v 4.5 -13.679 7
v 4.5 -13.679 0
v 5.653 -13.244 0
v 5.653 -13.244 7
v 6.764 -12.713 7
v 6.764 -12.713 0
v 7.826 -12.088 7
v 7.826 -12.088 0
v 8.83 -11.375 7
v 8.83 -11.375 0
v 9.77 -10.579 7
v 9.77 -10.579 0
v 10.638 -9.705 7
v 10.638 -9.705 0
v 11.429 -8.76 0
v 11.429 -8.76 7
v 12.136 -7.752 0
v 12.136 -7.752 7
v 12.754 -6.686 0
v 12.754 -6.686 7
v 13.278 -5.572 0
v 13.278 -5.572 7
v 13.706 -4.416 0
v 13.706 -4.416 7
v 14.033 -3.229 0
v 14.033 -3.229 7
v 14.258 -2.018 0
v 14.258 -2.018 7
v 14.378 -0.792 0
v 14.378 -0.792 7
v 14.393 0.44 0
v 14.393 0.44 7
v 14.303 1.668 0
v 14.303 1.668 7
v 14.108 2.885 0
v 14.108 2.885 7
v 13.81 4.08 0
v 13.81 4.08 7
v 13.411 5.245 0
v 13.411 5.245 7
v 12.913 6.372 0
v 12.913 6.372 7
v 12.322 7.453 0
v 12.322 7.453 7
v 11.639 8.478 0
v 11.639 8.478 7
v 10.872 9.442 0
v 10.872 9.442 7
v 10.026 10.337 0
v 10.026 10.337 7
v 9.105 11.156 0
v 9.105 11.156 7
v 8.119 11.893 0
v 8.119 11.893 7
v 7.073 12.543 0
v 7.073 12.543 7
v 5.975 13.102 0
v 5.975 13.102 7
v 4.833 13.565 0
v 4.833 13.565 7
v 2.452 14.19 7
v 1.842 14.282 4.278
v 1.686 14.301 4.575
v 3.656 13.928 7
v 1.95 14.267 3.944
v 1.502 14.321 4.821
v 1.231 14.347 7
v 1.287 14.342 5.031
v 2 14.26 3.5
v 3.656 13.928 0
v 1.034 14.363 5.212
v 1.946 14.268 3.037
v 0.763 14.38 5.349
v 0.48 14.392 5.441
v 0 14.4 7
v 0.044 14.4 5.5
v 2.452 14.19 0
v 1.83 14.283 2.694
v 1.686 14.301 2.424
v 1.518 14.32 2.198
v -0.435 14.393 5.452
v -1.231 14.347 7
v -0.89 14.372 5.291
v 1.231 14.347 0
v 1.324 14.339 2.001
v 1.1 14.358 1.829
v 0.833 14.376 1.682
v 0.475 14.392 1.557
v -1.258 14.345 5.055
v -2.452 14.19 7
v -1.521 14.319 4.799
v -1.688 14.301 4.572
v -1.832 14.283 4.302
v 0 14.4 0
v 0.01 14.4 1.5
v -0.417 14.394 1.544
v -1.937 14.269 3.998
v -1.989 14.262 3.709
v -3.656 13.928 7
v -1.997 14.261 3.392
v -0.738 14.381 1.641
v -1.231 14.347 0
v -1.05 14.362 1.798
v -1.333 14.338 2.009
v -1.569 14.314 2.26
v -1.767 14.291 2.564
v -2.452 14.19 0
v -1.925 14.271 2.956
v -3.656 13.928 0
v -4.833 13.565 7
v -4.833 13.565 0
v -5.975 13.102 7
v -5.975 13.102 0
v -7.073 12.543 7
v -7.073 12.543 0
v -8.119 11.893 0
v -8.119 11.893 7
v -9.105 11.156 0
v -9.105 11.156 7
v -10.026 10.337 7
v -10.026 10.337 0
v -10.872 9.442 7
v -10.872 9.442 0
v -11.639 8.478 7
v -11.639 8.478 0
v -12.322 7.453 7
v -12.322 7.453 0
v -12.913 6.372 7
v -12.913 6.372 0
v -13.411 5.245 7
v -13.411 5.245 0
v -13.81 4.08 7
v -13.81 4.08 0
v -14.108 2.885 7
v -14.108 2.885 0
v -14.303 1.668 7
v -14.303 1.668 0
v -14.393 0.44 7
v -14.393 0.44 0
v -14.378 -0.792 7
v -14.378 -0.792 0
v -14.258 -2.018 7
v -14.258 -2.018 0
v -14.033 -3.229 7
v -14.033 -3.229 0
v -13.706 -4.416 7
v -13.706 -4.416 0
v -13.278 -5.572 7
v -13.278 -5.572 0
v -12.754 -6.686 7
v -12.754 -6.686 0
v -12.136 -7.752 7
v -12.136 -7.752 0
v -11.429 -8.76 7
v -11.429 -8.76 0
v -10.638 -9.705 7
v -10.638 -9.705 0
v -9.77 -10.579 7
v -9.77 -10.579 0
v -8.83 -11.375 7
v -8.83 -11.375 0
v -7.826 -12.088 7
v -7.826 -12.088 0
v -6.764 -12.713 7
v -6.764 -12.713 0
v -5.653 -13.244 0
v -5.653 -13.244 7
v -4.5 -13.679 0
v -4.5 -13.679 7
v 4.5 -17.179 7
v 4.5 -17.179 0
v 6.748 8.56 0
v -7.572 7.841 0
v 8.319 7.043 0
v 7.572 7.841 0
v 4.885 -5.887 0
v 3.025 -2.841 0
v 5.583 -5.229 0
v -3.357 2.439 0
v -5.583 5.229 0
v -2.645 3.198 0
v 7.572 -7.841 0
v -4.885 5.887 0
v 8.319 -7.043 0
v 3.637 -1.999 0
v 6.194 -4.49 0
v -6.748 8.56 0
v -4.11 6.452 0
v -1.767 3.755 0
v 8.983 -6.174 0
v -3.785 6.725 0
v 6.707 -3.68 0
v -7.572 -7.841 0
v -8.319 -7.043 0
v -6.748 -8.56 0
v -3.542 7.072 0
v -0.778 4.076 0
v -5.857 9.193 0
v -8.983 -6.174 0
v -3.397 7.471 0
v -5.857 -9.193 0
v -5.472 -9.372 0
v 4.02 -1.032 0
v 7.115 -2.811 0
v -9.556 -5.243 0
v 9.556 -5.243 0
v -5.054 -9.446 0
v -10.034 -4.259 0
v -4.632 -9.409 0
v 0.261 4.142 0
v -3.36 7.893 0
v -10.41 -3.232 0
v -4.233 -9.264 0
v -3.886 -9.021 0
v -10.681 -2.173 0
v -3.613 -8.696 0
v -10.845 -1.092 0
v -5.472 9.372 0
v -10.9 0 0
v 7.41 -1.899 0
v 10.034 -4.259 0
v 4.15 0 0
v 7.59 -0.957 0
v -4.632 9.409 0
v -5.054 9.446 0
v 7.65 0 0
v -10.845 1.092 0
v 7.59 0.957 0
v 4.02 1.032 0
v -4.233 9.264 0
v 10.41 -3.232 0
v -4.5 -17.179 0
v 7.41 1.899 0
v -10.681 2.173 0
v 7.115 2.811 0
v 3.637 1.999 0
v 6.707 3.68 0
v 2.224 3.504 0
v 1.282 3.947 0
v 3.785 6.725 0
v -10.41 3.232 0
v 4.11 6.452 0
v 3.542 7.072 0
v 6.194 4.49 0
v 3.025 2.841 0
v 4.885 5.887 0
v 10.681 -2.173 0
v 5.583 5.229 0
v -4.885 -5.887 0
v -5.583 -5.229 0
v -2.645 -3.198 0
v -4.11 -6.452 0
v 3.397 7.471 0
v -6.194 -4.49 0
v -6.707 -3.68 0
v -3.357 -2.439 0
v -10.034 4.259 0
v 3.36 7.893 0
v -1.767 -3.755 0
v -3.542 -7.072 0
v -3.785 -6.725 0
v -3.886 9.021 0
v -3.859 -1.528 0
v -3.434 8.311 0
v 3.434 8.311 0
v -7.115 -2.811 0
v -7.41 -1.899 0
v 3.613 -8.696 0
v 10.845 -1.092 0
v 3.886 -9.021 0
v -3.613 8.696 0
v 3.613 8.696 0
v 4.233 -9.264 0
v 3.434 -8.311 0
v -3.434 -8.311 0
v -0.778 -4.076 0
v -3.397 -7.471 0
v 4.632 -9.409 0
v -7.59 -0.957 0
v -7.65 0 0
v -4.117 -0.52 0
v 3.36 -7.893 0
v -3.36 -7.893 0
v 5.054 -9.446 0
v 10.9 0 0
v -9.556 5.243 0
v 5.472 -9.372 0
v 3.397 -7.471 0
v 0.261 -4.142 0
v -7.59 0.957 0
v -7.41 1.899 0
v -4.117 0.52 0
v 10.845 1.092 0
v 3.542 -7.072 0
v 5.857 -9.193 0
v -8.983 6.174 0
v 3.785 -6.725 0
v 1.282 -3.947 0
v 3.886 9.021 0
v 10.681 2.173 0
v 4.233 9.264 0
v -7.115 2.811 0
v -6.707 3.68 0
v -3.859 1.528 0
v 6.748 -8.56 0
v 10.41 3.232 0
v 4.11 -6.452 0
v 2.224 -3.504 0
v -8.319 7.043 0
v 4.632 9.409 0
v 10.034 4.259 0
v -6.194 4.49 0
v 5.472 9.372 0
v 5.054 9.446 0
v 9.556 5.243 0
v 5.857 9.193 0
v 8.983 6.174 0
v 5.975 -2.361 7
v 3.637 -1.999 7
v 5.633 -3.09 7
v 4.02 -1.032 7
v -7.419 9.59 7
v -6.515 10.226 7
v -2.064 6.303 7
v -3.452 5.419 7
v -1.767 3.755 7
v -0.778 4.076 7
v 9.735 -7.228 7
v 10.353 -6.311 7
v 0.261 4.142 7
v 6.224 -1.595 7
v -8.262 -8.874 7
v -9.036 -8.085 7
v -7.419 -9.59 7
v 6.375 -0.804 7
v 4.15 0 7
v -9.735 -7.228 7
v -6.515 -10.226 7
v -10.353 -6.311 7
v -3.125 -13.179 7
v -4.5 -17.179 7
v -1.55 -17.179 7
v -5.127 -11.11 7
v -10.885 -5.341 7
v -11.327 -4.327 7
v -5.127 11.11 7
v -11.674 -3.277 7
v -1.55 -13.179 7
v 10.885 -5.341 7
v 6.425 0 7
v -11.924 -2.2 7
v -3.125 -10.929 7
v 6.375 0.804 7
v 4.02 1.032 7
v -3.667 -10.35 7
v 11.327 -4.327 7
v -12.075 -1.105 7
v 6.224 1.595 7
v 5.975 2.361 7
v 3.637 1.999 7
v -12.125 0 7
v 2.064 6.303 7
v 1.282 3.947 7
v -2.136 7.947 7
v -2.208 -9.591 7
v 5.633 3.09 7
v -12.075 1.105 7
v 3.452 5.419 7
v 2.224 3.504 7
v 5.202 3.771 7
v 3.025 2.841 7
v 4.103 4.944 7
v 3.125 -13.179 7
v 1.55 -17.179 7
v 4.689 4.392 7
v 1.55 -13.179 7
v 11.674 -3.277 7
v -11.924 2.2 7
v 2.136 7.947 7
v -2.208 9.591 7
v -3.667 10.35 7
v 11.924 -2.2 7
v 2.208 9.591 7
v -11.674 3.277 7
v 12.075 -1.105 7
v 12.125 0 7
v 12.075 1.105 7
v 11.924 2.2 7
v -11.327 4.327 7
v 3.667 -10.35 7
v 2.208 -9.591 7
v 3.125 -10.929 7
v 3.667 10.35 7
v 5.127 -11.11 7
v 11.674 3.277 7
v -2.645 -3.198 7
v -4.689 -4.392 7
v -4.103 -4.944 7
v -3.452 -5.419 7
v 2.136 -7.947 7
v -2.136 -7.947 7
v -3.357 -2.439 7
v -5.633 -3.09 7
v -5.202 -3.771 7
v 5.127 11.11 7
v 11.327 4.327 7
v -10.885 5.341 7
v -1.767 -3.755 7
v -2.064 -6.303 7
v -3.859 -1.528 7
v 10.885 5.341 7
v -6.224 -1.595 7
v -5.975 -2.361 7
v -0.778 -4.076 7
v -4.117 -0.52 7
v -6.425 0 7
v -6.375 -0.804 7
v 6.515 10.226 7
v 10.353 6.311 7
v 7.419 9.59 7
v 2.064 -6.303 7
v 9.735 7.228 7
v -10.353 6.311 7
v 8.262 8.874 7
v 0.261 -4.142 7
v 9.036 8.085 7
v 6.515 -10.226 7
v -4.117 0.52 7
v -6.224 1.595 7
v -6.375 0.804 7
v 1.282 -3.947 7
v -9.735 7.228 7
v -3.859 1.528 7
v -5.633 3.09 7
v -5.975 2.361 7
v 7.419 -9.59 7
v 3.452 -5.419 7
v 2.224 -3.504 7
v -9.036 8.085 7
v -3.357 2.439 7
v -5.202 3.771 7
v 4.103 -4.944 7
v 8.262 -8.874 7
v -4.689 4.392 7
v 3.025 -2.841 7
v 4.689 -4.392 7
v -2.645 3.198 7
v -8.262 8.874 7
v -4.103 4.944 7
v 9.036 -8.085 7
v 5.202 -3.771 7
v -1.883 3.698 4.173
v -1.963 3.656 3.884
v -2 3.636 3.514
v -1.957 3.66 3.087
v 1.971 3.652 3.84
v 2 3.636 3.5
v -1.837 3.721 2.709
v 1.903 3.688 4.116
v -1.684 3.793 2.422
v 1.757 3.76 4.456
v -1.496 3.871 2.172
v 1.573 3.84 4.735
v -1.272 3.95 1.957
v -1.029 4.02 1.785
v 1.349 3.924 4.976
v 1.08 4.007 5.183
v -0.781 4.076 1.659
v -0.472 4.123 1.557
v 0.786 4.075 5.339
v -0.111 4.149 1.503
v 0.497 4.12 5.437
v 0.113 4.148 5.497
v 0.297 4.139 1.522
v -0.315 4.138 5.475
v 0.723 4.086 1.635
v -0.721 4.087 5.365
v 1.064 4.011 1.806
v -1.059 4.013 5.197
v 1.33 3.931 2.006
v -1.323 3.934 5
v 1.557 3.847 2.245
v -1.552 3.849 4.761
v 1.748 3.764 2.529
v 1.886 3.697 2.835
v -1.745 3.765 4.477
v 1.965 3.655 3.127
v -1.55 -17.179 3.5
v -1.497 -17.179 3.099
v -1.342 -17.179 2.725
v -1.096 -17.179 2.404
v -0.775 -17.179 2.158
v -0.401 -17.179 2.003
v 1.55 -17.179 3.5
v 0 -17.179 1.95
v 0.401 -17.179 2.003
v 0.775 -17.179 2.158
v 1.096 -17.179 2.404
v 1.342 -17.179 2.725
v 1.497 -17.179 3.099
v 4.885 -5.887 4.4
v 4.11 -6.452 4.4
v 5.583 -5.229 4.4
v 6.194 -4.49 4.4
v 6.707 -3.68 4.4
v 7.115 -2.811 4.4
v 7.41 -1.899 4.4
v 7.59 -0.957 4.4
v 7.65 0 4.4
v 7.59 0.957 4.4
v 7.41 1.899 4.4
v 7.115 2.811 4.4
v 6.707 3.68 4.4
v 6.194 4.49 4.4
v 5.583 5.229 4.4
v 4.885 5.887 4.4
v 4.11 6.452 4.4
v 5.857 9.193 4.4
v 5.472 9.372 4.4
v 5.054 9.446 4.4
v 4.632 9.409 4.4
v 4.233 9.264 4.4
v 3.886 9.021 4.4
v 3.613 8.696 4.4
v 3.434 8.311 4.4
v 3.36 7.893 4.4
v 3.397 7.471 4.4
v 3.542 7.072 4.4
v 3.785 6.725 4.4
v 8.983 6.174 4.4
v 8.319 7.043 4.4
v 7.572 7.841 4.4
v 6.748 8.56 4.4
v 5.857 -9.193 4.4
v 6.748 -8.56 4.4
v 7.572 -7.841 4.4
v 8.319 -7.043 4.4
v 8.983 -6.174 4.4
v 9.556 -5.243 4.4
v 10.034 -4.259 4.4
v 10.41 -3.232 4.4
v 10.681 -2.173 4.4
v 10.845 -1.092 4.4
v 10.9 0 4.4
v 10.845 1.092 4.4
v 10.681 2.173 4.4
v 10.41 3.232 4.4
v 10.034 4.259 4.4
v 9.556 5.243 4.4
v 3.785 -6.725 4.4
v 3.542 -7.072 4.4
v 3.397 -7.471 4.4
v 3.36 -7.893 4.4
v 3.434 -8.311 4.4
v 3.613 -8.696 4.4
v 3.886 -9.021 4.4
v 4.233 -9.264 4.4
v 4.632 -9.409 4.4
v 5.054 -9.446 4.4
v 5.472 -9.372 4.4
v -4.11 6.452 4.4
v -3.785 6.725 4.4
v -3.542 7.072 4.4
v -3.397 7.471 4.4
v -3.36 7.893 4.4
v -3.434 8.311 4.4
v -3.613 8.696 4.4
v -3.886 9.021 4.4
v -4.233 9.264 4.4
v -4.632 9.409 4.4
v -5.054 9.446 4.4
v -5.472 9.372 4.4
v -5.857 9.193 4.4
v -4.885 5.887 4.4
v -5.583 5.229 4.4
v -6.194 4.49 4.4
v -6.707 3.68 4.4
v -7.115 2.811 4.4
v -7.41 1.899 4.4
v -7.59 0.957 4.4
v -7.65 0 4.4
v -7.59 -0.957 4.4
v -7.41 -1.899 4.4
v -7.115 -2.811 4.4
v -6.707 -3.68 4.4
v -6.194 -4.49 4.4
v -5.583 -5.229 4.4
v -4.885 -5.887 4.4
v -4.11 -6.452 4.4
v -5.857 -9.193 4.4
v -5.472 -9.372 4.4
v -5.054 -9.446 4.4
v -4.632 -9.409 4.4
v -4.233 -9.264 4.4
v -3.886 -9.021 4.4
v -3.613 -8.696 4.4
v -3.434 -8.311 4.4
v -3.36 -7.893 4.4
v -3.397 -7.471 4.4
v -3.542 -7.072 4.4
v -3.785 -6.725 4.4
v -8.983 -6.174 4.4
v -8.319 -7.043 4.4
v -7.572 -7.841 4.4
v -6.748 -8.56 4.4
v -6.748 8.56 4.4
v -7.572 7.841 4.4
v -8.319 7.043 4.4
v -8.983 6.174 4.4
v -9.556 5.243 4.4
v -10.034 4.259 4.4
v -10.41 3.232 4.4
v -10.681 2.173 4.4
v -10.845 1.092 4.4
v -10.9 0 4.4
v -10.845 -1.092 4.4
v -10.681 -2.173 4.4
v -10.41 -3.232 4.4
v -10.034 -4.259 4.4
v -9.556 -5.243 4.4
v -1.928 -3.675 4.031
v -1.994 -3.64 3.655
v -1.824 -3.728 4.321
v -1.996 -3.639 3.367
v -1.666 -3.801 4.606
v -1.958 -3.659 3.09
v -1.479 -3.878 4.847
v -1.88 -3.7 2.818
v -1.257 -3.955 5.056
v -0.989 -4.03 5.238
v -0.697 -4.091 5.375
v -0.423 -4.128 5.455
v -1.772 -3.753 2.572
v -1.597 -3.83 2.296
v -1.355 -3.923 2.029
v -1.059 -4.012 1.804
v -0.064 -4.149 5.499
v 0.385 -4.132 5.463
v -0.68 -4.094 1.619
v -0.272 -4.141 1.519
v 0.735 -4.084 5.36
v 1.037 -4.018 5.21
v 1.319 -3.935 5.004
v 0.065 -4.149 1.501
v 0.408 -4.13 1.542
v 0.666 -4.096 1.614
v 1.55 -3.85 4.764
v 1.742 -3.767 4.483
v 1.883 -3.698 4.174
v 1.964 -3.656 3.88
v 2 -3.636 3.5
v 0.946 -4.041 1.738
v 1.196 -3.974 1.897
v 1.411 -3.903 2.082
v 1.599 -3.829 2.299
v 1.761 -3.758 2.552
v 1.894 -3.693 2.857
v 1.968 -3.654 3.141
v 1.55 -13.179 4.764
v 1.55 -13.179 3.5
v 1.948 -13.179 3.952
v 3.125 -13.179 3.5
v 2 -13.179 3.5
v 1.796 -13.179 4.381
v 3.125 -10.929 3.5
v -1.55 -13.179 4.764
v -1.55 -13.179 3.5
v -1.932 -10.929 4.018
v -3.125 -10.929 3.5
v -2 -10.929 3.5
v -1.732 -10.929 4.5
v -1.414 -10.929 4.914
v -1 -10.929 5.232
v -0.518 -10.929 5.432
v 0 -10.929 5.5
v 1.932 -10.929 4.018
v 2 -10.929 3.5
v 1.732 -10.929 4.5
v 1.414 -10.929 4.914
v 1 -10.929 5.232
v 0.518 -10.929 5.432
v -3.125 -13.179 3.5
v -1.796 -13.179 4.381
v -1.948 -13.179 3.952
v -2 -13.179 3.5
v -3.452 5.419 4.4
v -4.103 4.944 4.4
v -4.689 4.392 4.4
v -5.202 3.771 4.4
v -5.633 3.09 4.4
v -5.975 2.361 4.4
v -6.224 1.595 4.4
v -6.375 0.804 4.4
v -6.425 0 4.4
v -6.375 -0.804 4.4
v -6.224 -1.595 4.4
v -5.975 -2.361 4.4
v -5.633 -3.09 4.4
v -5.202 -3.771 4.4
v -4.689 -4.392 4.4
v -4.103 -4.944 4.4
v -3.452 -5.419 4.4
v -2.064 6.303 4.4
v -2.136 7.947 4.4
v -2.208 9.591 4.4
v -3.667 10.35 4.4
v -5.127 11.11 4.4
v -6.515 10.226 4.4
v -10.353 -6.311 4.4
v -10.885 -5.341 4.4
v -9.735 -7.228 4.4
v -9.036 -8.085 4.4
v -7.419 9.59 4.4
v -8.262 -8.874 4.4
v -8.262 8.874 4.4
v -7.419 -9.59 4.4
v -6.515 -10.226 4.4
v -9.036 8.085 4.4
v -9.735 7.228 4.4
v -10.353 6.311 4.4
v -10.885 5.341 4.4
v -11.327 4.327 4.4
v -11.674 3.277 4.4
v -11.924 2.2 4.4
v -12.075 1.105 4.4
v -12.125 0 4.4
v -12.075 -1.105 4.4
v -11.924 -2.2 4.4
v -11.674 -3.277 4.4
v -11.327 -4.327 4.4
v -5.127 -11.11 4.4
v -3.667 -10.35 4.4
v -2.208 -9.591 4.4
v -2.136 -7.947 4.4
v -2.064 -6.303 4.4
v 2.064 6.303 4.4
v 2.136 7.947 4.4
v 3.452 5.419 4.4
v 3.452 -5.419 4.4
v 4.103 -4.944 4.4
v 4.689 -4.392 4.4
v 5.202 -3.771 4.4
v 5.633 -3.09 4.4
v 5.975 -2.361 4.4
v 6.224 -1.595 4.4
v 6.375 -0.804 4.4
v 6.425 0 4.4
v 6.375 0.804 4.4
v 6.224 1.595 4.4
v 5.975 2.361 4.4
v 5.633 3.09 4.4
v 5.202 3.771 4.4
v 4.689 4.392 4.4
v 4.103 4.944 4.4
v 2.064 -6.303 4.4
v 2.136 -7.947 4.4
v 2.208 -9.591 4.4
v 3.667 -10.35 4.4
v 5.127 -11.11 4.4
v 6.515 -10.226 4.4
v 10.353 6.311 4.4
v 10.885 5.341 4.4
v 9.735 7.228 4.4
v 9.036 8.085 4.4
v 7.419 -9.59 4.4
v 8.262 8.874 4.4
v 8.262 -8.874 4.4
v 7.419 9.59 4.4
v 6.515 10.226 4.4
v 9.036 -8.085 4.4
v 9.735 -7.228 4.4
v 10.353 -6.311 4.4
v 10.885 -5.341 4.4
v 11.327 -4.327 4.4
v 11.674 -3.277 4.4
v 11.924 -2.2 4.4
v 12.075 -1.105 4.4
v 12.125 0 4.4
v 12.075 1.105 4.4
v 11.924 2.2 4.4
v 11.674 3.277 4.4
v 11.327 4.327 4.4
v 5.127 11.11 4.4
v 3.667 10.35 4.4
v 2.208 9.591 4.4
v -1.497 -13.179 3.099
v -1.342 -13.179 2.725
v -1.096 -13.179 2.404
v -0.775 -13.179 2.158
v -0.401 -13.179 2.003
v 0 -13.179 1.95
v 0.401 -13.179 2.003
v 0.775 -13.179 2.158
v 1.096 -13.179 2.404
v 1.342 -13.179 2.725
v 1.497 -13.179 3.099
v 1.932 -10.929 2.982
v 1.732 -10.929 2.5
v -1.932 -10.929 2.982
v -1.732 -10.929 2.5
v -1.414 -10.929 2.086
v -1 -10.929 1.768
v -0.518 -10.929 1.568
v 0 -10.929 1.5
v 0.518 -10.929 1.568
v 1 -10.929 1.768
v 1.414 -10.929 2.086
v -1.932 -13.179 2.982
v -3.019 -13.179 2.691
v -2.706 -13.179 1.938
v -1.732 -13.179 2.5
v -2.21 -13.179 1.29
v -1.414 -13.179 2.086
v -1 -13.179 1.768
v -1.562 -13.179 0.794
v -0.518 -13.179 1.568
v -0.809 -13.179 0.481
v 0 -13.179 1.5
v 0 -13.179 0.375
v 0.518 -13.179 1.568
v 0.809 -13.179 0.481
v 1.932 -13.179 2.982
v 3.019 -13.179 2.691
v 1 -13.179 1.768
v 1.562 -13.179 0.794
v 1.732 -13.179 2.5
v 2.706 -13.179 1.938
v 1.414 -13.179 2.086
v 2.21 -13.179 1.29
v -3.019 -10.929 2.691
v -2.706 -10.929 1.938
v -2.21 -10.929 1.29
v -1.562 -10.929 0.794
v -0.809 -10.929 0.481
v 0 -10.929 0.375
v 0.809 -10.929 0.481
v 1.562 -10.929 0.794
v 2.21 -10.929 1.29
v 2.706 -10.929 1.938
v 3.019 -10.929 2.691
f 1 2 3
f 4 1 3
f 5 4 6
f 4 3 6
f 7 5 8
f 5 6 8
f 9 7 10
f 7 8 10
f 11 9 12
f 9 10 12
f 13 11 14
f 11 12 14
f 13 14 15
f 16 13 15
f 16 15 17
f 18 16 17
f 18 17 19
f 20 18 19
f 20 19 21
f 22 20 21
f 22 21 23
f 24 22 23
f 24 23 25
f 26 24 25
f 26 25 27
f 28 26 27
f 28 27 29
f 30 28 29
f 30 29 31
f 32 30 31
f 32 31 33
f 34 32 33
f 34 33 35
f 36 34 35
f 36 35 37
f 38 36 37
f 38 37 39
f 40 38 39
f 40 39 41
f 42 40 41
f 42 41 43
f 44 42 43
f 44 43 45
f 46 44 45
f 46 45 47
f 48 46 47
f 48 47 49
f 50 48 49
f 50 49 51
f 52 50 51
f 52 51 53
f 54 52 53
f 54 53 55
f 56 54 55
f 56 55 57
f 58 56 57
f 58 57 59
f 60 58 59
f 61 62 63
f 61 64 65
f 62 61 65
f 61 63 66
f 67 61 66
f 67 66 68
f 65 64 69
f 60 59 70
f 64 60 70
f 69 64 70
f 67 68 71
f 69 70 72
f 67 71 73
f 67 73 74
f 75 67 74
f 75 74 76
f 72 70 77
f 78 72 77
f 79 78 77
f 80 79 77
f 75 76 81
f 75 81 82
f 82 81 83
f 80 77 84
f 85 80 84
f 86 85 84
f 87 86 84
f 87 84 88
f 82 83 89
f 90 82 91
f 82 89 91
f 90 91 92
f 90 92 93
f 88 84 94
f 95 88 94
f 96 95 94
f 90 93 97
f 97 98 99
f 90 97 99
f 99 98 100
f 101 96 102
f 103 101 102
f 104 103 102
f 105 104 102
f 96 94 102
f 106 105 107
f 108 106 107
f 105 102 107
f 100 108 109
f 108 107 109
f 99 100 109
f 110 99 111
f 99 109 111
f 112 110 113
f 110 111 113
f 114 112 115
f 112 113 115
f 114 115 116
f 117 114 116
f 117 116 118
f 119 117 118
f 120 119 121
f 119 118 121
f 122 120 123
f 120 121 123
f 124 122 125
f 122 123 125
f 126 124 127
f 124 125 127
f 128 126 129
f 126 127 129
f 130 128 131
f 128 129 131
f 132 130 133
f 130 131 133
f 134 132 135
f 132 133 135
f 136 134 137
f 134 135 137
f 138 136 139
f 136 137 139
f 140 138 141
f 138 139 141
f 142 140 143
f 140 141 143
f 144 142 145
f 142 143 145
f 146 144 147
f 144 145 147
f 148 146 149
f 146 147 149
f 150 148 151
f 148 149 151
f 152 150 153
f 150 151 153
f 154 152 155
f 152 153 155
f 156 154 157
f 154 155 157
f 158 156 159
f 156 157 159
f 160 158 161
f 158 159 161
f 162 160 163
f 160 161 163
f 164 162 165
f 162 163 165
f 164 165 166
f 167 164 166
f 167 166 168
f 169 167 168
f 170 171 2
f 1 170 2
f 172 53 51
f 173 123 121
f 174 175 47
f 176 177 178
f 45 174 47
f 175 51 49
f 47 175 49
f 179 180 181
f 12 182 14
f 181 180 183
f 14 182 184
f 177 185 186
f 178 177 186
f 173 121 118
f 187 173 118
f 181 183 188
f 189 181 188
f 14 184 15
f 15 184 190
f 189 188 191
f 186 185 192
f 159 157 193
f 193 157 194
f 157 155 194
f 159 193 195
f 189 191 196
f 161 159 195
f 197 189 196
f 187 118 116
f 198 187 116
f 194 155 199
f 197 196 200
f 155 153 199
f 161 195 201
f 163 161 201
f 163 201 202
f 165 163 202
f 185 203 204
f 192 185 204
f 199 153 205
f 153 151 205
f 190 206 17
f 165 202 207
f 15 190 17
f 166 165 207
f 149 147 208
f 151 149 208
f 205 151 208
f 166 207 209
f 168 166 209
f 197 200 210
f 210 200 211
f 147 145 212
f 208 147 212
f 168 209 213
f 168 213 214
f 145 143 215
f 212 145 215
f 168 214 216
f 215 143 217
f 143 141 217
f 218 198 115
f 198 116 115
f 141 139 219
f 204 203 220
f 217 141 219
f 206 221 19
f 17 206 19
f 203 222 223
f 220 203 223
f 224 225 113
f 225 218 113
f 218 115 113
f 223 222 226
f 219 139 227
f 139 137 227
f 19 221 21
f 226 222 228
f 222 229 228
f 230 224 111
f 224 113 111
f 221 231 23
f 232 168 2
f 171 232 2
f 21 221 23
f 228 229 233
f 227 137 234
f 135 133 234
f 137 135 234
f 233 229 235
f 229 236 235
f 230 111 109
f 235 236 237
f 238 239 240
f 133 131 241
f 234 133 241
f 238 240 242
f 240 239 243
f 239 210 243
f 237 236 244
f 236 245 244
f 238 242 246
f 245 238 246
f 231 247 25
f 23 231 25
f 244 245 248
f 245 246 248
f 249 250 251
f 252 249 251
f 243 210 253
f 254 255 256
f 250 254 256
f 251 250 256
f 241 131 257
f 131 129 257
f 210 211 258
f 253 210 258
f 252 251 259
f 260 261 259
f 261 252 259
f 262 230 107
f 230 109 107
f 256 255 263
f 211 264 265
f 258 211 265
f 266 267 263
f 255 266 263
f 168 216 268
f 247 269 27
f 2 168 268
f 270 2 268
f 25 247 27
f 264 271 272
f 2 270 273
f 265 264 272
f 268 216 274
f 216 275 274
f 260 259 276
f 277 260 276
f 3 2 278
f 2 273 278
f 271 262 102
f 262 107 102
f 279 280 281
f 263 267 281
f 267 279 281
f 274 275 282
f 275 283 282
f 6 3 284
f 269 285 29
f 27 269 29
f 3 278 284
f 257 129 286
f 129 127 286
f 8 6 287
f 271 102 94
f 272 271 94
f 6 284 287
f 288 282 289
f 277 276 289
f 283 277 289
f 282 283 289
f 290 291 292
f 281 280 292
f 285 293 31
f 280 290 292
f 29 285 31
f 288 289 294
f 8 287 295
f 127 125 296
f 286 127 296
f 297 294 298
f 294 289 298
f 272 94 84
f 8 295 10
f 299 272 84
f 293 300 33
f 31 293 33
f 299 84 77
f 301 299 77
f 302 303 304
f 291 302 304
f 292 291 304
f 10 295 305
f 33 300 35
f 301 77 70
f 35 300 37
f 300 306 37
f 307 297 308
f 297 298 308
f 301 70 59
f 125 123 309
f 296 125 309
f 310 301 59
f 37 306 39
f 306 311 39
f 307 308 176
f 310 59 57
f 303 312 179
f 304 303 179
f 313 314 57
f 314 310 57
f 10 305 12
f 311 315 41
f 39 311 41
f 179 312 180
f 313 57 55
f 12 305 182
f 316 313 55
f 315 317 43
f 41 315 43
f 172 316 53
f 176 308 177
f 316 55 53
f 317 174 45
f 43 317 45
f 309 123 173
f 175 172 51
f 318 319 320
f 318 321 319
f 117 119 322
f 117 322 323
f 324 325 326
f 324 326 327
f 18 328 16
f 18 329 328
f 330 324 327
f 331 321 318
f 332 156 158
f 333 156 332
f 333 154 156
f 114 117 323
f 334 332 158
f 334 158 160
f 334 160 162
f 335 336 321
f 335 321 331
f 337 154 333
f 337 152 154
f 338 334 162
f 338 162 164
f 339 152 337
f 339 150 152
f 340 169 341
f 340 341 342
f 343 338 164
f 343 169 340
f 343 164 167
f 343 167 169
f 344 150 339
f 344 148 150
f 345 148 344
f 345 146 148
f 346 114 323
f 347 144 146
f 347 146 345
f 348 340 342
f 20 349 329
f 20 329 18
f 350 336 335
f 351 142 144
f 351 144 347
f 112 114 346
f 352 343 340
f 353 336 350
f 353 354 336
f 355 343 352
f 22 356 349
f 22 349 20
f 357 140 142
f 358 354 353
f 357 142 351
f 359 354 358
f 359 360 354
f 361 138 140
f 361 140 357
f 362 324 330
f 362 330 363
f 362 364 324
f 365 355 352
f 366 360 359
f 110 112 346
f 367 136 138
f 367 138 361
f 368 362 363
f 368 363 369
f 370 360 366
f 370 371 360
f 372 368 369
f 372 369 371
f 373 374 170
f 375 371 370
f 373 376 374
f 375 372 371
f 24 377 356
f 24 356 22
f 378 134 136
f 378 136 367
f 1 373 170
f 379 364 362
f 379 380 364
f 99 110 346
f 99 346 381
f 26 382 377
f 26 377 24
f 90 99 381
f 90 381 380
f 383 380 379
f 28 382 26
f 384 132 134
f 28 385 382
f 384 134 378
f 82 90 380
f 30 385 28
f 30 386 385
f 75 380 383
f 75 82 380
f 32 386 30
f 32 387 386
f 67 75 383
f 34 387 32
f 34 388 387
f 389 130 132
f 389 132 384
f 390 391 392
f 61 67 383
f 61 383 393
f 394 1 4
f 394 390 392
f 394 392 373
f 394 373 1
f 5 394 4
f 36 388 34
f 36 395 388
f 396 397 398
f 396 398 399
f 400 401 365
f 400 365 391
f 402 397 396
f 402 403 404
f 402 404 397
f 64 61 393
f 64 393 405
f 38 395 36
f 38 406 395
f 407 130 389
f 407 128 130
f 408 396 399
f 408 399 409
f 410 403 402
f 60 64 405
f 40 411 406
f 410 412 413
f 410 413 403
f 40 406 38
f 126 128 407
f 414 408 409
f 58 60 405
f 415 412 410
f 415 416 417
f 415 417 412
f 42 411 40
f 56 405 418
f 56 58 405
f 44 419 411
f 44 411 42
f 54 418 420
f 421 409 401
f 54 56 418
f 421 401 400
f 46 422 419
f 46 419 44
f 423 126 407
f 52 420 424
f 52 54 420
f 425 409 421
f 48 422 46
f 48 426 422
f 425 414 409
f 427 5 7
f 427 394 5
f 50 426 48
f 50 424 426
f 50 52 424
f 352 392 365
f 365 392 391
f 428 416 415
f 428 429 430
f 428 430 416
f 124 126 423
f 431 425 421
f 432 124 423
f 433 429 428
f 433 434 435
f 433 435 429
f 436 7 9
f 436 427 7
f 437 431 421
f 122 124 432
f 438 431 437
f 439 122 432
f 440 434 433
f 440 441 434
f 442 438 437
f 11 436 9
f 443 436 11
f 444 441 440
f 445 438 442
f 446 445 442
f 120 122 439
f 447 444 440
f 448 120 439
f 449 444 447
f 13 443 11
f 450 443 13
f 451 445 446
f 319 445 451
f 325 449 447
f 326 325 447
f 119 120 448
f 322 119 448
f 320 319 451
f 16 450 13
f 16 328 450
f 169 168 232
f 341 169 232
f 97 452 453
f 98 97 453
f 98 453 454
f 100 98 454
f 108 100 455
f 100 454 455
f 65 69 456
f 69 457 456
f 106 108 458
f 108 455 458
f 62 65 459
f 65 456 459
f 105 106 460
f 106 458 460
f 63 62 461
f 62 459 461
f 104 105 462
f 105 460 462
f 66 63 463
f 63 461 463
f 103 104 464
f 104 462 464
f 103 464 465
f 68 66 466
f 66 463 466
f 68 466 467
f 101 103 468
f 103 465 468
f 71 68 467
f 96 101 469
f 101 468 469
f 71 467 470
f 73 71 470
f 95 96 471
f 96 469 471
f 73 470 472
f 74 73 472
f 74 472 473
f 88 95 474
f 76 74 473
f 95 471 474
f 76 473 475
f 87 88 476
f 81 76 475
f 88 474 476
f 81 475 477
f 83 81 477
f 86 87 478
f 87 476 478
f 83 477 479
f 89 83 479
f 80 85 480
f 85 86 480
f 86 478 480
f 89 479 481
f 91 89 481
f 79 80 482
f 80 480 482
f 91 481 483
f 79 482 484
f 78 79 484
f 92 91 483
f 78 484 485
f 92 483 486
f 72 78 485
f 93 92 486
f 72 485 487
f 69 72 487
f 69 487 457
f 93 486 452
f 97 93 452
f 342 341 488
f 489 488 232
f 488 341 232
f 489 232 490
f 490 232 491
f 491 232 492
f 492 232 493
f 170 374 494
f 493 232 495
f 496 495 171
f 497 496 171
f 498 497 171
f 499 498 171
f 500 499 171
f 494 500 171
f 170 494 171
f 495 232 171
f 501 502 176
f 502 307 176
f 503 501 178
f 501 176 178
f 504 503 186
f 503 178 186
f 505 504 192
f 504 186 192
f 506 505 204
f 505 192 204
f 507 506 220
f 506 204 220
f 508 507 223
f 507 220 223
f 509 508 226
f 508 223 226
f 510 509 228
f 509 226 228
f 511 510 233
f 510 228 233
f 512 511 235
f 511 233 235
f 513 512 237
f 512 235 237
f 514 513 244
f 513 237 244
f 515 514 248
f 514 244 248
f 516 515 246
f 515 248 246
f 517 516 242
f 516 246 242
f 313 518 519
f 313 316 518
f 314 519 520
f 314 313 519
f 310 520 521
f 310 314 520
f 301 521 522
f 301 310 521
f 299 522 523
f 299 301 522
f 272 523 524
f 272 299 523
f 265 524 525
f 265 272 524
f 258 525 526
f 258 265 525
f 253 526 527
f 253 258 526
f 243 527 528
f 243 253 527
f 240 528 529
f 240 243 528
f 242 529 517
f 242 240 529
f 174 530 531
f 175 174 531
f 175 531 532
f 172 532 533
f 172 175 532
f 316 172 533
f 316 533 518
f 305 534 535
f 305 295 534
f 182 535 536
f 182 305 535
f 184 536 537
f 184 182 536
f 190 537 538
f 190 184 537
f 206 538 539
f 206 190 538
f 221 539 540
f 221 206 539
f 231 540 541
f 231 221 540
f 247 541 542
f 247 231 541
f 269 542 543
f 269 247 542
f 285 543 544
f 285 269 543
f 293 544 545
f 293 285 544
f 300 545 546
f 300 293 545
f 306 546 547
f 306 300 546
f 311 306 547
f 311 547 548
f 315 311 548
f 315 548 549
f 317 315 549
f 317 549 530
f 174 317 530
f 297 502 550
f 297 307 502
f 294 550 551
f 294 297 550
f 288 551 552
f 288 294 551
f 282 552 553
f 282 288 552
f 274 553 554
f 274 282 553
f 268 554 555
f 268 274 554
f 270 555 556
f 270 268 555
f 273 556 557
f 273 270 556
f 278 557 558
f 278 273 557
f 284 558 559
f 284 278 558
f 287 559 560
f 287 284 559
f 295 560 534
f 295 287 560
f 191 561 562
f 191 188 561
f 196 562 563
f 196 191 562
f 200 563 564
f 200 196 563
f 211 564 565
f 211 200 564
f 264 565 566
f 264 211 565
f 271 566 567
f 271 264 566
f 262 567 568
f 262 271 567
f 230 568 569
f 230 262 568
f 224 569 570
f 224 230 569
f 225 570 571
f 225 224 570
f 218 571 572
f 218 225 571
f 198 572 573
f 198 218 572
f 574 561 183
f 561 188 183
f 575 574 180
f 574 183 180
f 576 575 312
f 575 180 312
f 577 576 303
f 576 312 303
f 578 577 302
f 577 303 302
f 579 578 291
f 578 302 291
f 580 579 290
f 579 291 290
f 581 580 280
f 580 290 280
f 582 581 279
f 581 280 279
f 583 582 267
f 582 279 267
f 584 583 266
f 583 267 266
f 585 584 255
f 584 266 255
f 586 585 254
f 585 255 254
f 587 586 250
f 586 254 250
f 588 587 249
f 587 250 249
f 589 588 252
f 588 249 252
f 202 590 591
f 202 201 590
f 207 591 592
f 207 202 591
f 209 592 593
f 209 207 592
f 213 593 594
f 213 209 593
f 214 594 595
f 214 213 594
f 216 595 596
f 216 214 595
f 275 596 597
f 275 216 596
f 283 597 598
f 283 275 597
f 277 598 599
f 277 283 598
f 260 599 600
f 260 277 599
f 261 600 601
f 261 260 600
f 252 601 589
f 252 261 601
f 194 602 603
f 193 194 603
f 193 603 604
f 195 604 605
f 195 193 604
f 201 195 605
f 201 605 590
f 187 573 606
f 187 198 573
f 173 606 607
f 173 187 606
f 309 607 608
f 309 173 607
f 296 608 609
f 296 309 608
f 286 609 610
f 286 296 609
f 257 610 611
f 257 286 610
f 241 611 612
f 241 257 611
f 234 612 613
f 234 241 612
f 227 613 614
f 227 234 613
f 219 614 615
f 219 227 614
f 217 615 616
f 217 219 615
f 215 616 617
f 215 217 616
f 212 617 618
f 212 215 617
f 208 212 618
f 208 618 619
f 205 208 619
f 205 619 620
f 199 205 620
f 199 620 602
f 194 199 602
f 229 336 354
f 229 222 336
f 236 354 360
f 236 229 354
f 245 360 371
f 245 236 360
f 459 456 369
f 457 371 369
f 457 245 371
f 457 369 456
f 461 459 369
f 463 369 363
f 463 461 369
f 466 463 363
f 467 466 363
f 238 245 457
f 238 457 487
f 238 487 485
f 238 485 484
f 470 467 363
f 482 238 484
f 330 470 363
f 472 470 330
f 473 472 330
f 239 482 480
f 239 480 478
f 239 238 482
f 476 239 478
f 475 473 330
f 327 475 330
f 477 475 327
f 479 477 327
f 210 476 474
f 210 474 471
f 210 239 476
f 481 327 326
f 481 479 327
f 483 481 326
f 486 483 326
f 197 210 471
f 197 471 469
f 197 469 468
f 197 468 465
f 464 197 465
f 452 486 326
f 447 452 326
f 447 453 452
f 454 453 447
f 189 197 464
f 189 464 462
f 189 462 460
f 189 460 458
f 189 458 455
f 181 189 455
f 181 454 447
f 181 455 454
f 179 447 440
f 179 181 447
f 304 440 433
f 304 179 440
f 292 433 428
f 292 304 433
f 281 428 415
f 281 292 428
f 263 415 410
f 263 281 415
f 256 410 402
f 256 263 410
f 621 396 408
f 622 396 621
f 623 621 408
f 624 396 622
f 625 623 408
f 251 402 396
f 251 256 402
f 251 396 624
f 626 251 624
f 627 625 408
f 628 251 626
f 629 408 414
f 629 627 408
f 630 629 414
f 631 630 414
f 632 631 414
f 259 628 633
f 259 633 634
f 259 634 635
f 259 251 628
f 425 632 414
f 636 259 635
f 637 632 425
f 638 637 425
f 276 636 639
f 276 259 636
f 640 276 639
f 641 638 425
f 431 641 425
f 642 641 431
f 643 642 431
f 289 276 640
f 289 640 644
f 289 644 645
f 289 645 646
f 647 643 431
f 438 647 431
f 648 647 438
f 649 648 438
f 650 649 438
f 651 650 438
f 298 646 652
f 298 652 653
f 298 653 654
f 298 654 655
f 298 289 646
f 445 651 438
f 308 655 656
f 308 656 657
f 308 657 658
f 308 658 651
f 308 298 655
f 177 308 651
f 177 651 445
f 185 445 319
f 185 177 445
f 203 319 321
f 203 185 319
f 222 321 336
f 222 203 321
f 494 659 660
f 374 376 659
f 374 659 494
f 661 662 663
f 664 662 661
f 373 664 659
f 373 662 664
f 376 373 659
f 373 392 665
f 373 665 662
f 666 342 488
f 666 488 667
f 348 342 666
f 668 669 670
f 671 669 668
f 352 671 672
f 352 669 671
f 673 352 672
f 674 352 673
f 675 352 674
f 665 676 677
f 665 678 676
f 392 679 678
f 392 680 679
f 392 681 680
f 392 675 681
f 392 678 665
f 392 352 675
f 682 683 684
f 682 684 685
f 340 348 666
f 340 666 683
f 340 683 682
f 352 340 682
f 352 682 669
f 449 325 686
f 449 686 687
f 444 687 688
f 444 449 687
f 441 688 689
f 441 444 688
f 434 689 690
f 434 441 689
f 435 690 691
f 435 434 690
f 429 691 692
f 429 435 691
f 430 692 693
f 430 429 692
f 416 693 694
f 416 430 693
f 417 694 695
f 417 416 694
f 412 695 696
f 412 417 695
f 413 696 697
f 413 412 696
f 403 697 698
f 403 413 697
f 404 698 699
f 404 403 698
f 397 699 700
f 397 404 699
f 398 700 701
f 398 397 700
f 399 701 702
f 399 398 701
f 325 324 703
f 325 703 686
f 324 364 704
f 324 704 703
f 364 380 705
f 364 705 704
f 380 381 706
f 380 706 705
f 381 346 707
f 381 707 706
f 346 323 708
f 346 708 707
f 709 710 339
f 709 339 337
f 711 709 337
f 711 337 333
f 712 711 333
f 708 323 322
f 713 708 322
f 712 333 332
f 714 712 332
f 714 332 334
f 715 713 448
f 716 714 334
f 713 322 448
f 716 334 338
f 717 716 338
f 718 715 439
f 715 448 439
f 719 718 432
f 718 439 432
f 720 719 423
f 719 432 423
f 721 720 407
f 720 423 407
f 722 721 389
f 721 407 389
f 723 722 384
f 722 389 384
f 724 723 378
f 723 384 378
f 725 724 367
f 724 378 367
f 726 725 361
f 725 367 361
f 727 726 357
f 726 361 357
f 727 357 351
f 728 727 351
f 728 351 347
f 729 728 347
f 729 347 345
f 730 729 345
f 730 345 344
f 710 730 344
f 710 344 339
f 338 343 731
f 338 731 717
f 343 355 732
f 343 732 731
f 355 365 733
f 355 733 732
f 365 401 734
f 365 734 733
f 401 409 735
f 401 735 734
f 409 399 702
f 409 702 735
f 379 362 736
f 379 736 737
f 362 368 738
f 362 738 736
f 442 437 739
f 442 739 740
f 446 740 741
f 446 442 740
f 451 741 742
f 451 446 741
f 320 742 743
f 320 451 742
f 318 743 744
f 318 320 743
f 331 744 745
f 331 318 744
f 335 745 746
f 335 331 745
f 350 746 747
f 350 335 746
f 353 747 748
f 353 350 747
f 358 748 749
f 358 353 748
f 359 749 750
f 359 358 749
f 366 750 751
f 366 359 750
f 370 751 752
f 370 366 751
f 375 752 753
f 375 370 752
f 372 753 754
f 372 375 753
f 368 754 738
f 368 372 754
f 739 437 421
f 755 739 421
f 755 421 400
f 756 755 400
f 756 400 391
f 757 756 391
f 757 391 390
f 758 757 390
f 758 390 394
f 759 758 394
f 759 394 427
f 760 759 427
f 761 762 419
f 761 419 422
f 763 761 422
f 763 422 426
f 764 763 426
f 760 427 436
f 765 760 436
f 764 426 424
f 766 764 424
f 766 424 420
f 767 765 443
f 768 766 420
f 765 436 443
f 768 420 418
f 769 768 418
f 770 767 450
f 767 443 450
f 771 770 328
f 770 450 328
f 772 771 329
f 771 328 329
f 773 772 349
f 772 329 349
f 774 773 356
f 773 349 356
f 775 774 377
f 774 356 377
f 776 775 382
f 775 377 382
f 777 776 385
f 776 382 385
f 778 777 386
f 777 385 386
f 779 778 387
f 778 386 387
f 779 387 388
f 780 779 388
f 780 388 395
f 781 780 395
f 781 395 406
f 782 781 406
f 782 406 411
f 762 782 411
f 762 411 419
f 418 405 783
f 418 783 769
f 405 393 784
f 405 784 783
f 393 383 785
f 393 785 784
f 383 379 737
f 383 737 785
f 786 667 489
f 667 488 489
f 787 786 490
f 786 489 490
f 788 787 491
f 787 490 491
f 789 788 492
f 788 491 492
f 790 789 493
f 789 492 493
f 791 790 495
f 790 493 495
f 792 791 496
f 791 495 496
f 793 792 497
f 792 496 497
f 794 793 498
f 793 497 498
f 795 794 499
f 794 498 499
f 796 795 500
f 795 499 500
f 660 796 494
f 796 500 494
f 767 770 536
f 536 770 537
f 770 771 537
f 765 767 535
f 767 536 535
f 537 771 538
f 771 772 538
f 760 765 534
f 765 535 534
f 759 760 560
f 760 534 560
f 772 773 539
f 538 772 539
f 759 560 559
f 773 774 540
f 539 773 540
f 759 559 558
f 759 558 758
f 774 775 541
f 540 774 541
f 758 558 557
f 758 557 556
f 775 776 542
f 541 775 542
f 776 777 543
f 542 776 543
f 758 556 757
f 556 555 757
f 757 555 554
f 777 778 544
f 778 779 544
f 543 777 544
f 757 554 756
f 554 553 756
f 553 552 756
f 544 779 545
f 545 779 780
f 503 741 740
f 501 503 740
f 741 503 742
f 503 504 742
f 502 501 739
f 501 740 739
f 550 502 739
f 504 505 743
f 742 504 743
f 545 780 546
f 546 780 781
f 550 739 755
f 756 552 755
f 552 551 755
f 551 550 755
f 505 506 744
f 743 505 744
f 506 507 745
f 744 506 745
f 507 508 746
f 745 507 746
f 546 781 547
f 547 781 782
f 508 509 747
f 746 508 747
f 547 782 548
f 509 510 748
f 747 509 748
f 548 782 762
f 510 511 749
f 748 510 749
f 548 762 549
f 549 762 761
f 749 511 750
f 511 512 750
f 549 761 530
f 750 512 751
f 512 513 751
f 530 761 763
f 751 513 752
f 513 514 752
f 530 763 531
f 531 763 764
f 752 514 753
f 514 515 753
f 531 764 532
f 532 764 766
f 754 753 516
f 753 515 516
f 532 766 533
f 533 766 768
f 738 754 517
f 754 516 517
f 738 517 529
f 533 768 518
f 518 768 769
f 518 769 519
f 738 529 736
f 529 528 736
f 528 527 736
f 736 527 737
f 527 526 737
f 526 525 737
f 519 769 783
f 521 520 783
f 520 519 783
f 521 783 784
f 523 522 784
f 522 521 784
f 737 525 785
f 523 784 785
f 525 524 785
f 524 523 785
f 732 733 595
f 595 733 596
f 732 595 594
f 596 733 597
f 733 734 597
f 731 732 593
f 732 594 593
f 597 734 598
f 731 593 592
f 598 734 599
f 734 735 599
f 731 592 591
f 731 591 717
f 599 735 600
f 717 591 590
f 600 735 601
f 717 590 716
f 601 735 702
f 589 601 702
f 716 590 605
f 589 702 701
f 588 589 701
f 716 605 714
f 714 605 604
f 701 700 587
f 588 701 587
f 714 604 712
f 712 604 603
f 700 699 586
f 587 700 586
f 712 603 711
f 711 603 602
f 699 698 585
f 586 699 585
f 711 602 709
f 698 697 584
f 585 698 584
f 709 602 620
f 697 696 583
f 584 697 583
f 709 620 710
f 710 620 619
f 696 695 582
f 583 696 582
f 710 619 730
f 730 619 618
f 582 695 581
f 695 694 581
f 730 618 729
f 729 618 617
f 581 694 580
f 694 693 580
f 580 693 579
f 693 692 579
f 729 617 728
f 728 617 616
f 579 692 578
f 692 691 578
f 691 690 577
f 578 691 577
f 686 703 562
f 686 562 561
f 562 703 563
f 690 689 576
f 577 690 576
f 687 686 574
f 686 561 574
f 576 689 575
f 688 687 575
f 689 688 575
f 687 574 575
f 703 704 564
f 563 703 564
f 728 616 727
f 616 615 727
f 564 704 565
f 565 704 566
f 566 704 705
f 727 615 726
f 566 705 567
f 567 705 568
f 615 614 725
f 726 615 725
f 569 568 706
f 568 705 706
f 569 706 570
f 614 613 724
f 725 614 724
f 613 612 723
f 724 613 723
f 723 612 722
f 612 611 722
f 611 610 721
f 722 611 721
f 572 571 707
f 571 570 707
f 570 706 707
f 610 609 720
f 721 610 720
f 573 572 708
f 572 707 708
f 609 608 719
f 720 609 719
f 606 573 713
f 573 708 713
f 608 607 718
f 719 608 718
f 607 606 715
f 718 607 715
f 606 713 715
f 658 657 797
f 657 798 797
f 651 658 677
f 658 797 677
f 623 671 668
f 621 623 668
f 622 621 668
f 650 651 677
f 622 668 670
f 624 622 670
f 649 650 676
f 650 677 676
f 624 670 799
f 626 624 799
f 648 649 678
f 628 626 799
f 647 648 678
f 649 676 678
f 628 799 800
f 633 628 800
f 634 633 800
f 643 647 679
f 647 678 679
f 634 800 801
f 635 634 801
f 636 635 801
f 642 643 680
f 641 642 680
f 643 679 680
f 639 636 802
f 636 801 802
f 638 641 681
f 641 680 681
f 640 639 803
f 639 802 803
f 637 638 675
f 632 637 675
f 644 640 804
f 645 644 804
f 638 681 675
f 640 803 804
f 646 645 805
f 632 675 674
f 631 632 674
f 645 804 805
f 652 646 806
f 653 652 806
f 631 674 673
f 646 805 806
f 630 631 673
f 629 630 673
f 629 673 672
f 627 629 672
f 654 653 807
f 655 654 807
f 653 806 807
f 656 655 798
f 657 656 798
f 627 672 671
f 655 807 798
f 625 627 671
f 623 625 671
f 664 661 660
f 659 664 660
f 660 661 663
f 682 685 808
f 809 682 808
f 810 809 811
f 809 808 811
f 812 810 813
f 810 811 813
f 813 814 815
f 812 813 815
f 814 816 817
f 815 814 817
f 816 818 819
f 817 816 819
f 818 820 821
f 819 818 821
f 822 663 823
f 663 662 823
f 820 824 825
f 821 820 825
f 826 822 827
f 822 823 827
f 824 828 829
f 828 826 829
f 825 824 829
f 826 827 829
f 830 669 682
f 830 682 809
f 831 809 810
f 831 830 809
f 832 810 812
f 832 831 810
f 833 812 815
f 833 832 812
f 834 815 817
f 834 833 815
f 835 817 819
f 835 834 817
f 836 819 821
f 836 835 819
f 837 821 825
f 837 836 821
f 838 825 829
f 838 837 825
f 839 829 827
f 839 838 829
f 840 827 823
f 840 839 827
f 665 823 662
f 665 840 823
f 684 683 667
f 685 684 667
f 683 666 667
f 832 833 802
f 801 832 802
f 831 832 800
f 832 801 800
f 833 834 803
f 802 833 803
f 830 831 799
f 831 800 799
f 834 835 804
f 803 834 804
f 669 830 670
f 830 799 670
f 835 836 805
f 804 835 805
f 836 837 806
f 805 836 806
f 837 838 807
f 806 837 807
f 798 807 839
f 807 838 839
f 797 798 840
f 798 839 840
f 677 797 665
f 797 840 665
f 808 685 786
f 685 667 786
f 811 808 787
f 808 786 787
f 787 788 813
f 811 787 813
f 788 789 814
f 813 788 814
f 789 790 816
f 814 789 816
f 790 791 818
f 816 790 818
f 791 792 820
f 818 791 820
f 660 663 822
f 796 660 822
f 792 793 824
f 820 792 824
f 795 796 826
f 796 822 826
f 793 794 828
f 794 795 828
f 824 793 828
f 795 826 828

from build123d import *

# Parameters (mm, degrees)
SKETCH_R        = 4.15
EXTRUDE_DEPTH   = 7
SKETCH001_R     = 1.55
POCKET_DEPTH    = 4
SKETCH002_R     = 2
POCKET001_DEPTH = 27.5798157383
POCKET002_DEPTH = 3.5
POCKET003_DEPTH = 2.25
POCKET004_DEPTH = 2.6


with BuildPart() as part:
    # Sketch → Extrude (new body)
    with BuildSketch(Plane.XY):
        with BuildLine():
            ThreePointArc((4.5, -13.6788157382), (0, 14.4), (-4.5, -13.6788157382))
            Line((-4.5, -13.6788157382), (-4.5, -17.1788157382))
            Line((-4.5, -17.1788157382), (4.5, -17.1788157382))
            Line((4.5, -17.1788157382), (4.5, -13.6788157382))
        make_face()
        Circle(SKETCH_R, mode=Mode.SUBTRACT)
        with BuildLine():
            ThreePointArc((-4.1103420039, 6.4519445605), (-7.65, 0), (-4.1103420039, -6.4519445605))
            ThreePointArc((-5.856565731, -9.1929667594), (-3.612942768, -8.6955675235), (-4.1103420039, -6.4519445605))
            ThreePointArc((-5.856565731, 9.1929667594), (-10.9, 0), (-5.856565731, -9.1929667594))
            ThreePointArc((-4.1103420039, 6.4519445605), (-3.612942768, 8.6955675235), (-5.856565731, 9.1929667594))
        make_face(mode=Mode.SUBTRACT)
        with BuildLine():
            ThreePointArc((4.1103420039, -6.4519445605), (7.65, 0), (4.1103420039, 6.4519445605))
            ThreePointArc((5.856565731, 9.1929667594), (3.612942768, 8.6955675235), (4.1103420039, 6.4519445605))
            ThreePointArc((5.856565731, -9.1929667594), (10.9, 0), (5.856565731, 9.1929667594))
            ThreePointArc((4.1103420039, -6.4519445605), (3.612942768, -8.6955675235), (5.856565731, -9.1929667594))
        make_face(mode=Mode.SUBTRACT)
    extrude(amount=EXTRUDE_DEPTH)

    # Sketch001 → Pocket (cut)
    with BuildSketch(Plane.XZ.offset(17.1788157382)):
        with Locations((0, 3.5)):
            Circle(SKETCH001_R)
    extrude(amount=-POCKET_DEPTH, mode=Mode.SUBTRACT)

    # Sketch002 → Pocket001 (cut, through all)
    with BuildSketch(Plane.XZ.offset(13.1788157382)):
        with Locations((0, 3.5)):
            Circle(SKETCH002_R)
    extrude(amount=-POCKET001_DEPTH, mode=Mode.SUBTRACT)

    # Sketch003 → Pocket002 (cut)
    with BuildSketch(Plane.XY.offset(7)):
        Polygon((1.55, -17.1788157382), (-1.55, -17.1788157382), (-1.55, -13.1788157382), (-3.125, -13.1788157382), (-3.125, -10.9288157382), (3.125, -10.9288157382), (3.125, -13.1788157382), (1.55, -13.1788157382), align=None)
    extrude(amount=-POCKET002_DEPTH, mode=Mode.SUBTRACT)

    # Sketch004 → Pocket003 (cut)
    with BuildSketch(Plane.XZ.offset(10.9288157382)):
        with BuildLine():
            Line((-3.125, 3.5), (3.125, 3.5))
            ThreePointArc((-3.125, 3.5), (0, 0.375), (3.125, 3.5))
        make_face()
    extrude(amount=POCKET003_DEPTH, mode=Mode.SUBTRACT)

    # Sketch005 → Pocket004 (cut)
    with BuildSketch(Plane.XY.offset(7)):
        with BuildLine():
            ThreePointArc((-3.4521499836, 5.4187900393), (-6.425, 0), (-3.4521499836, -5.4187900393))
            Line((-3.4521499836, -5.4187900393), (-2.064393013, -6.3028887726))
            Line((-2.064393013, -6.3028887726), (-2.1361664367, -7.9467709324))
            Line((-2.1361664367, -7.9467709324), (-2.2079398605, -9.5906530922))
            Line((-2.2079398605, -9.5906530922), (-3.6674703033, -10.3504365259))
            Line((-3.6674703033, -10.3504365259), (-5.1270007461, -11.1102199597))
            Line((-5.1270007461, -11.1102199597), (-6.5147577512, -10.2261212805))
            ThreePointArc((-6.5147577512, 10.2261212805), (-12.125, 0), (-6.5147577512, -10.2261212805))
            Line((-6.5147577512, 10.2261212805), (-5.1270007739, 11.1102200297))
            Line((-5.1270007739, 11.1102200297), (-3.6674703412, 10.3504365457))
            Line((-3.6674703412, 10.3504365457), (-2.2079399085, 9.5906530616))
            Line((-2.2079399085, 9.5906530616), (-2.1361664349, 7.9467708897))
            Line((-2.1361664349, 7.9467708897), (-2.0643929612, 6.3028887178))
            Line((-2.0643929612, 6.3028887178), (-3.4521499836, 5.4187900393))
        make_face()
        with BuildLine():
            ThreePointArc((3.4521499836, -5.4187900393), (6.425, 0), (3.4521499836, 5.4187900393))
            Line((3.4521499836, 5.4187900393), (2.0643912497, 6.3028869075))
            Line((2.0643912497, 6.3028869075), (2.1361663732, 7.9467694786))
            Line((2.1361663732, 7.9467694786), (2.2079414968, 9.5906520497))
            Line((2.2079414968, 9.5906520497), (3.667471594, 10.3504371978))
            Line((3.667471594, 10.3504371978), (5.1270016912, 11.110222346))
            Line((5.1270016912, 11.110222346), (6.5147577512, 10.2261212805))
            ThreePointArc((6.5147577512, -10.2261212805), (12.125, 0), (6.5147577512, 10.2261212805))
            Line((5.1270027116, -11.1102249223), (6.5147577512, -10.2261212805))
            Line((3.6674729876, -10.3504379233), (5.1270027116, -11.1102249223))
            Line((2.2079432635, -9.5906509242), (3.6674729876, -10.3504379233))
            Line((2.1361663047, -7.9467679091), (2.2079432635, -9.5906509242))
            Line((2.0643893459, -6.3028848939), (2.1361663047, -7.9467679091))
            Line((3.4521499836, -5.4187900393), (2.0643893459, -6.3028848939))
        make_face()
    extrude(amount=-POCKET004_DEPTH, mode=Mode.SUBTRACT)


solid = part.part
